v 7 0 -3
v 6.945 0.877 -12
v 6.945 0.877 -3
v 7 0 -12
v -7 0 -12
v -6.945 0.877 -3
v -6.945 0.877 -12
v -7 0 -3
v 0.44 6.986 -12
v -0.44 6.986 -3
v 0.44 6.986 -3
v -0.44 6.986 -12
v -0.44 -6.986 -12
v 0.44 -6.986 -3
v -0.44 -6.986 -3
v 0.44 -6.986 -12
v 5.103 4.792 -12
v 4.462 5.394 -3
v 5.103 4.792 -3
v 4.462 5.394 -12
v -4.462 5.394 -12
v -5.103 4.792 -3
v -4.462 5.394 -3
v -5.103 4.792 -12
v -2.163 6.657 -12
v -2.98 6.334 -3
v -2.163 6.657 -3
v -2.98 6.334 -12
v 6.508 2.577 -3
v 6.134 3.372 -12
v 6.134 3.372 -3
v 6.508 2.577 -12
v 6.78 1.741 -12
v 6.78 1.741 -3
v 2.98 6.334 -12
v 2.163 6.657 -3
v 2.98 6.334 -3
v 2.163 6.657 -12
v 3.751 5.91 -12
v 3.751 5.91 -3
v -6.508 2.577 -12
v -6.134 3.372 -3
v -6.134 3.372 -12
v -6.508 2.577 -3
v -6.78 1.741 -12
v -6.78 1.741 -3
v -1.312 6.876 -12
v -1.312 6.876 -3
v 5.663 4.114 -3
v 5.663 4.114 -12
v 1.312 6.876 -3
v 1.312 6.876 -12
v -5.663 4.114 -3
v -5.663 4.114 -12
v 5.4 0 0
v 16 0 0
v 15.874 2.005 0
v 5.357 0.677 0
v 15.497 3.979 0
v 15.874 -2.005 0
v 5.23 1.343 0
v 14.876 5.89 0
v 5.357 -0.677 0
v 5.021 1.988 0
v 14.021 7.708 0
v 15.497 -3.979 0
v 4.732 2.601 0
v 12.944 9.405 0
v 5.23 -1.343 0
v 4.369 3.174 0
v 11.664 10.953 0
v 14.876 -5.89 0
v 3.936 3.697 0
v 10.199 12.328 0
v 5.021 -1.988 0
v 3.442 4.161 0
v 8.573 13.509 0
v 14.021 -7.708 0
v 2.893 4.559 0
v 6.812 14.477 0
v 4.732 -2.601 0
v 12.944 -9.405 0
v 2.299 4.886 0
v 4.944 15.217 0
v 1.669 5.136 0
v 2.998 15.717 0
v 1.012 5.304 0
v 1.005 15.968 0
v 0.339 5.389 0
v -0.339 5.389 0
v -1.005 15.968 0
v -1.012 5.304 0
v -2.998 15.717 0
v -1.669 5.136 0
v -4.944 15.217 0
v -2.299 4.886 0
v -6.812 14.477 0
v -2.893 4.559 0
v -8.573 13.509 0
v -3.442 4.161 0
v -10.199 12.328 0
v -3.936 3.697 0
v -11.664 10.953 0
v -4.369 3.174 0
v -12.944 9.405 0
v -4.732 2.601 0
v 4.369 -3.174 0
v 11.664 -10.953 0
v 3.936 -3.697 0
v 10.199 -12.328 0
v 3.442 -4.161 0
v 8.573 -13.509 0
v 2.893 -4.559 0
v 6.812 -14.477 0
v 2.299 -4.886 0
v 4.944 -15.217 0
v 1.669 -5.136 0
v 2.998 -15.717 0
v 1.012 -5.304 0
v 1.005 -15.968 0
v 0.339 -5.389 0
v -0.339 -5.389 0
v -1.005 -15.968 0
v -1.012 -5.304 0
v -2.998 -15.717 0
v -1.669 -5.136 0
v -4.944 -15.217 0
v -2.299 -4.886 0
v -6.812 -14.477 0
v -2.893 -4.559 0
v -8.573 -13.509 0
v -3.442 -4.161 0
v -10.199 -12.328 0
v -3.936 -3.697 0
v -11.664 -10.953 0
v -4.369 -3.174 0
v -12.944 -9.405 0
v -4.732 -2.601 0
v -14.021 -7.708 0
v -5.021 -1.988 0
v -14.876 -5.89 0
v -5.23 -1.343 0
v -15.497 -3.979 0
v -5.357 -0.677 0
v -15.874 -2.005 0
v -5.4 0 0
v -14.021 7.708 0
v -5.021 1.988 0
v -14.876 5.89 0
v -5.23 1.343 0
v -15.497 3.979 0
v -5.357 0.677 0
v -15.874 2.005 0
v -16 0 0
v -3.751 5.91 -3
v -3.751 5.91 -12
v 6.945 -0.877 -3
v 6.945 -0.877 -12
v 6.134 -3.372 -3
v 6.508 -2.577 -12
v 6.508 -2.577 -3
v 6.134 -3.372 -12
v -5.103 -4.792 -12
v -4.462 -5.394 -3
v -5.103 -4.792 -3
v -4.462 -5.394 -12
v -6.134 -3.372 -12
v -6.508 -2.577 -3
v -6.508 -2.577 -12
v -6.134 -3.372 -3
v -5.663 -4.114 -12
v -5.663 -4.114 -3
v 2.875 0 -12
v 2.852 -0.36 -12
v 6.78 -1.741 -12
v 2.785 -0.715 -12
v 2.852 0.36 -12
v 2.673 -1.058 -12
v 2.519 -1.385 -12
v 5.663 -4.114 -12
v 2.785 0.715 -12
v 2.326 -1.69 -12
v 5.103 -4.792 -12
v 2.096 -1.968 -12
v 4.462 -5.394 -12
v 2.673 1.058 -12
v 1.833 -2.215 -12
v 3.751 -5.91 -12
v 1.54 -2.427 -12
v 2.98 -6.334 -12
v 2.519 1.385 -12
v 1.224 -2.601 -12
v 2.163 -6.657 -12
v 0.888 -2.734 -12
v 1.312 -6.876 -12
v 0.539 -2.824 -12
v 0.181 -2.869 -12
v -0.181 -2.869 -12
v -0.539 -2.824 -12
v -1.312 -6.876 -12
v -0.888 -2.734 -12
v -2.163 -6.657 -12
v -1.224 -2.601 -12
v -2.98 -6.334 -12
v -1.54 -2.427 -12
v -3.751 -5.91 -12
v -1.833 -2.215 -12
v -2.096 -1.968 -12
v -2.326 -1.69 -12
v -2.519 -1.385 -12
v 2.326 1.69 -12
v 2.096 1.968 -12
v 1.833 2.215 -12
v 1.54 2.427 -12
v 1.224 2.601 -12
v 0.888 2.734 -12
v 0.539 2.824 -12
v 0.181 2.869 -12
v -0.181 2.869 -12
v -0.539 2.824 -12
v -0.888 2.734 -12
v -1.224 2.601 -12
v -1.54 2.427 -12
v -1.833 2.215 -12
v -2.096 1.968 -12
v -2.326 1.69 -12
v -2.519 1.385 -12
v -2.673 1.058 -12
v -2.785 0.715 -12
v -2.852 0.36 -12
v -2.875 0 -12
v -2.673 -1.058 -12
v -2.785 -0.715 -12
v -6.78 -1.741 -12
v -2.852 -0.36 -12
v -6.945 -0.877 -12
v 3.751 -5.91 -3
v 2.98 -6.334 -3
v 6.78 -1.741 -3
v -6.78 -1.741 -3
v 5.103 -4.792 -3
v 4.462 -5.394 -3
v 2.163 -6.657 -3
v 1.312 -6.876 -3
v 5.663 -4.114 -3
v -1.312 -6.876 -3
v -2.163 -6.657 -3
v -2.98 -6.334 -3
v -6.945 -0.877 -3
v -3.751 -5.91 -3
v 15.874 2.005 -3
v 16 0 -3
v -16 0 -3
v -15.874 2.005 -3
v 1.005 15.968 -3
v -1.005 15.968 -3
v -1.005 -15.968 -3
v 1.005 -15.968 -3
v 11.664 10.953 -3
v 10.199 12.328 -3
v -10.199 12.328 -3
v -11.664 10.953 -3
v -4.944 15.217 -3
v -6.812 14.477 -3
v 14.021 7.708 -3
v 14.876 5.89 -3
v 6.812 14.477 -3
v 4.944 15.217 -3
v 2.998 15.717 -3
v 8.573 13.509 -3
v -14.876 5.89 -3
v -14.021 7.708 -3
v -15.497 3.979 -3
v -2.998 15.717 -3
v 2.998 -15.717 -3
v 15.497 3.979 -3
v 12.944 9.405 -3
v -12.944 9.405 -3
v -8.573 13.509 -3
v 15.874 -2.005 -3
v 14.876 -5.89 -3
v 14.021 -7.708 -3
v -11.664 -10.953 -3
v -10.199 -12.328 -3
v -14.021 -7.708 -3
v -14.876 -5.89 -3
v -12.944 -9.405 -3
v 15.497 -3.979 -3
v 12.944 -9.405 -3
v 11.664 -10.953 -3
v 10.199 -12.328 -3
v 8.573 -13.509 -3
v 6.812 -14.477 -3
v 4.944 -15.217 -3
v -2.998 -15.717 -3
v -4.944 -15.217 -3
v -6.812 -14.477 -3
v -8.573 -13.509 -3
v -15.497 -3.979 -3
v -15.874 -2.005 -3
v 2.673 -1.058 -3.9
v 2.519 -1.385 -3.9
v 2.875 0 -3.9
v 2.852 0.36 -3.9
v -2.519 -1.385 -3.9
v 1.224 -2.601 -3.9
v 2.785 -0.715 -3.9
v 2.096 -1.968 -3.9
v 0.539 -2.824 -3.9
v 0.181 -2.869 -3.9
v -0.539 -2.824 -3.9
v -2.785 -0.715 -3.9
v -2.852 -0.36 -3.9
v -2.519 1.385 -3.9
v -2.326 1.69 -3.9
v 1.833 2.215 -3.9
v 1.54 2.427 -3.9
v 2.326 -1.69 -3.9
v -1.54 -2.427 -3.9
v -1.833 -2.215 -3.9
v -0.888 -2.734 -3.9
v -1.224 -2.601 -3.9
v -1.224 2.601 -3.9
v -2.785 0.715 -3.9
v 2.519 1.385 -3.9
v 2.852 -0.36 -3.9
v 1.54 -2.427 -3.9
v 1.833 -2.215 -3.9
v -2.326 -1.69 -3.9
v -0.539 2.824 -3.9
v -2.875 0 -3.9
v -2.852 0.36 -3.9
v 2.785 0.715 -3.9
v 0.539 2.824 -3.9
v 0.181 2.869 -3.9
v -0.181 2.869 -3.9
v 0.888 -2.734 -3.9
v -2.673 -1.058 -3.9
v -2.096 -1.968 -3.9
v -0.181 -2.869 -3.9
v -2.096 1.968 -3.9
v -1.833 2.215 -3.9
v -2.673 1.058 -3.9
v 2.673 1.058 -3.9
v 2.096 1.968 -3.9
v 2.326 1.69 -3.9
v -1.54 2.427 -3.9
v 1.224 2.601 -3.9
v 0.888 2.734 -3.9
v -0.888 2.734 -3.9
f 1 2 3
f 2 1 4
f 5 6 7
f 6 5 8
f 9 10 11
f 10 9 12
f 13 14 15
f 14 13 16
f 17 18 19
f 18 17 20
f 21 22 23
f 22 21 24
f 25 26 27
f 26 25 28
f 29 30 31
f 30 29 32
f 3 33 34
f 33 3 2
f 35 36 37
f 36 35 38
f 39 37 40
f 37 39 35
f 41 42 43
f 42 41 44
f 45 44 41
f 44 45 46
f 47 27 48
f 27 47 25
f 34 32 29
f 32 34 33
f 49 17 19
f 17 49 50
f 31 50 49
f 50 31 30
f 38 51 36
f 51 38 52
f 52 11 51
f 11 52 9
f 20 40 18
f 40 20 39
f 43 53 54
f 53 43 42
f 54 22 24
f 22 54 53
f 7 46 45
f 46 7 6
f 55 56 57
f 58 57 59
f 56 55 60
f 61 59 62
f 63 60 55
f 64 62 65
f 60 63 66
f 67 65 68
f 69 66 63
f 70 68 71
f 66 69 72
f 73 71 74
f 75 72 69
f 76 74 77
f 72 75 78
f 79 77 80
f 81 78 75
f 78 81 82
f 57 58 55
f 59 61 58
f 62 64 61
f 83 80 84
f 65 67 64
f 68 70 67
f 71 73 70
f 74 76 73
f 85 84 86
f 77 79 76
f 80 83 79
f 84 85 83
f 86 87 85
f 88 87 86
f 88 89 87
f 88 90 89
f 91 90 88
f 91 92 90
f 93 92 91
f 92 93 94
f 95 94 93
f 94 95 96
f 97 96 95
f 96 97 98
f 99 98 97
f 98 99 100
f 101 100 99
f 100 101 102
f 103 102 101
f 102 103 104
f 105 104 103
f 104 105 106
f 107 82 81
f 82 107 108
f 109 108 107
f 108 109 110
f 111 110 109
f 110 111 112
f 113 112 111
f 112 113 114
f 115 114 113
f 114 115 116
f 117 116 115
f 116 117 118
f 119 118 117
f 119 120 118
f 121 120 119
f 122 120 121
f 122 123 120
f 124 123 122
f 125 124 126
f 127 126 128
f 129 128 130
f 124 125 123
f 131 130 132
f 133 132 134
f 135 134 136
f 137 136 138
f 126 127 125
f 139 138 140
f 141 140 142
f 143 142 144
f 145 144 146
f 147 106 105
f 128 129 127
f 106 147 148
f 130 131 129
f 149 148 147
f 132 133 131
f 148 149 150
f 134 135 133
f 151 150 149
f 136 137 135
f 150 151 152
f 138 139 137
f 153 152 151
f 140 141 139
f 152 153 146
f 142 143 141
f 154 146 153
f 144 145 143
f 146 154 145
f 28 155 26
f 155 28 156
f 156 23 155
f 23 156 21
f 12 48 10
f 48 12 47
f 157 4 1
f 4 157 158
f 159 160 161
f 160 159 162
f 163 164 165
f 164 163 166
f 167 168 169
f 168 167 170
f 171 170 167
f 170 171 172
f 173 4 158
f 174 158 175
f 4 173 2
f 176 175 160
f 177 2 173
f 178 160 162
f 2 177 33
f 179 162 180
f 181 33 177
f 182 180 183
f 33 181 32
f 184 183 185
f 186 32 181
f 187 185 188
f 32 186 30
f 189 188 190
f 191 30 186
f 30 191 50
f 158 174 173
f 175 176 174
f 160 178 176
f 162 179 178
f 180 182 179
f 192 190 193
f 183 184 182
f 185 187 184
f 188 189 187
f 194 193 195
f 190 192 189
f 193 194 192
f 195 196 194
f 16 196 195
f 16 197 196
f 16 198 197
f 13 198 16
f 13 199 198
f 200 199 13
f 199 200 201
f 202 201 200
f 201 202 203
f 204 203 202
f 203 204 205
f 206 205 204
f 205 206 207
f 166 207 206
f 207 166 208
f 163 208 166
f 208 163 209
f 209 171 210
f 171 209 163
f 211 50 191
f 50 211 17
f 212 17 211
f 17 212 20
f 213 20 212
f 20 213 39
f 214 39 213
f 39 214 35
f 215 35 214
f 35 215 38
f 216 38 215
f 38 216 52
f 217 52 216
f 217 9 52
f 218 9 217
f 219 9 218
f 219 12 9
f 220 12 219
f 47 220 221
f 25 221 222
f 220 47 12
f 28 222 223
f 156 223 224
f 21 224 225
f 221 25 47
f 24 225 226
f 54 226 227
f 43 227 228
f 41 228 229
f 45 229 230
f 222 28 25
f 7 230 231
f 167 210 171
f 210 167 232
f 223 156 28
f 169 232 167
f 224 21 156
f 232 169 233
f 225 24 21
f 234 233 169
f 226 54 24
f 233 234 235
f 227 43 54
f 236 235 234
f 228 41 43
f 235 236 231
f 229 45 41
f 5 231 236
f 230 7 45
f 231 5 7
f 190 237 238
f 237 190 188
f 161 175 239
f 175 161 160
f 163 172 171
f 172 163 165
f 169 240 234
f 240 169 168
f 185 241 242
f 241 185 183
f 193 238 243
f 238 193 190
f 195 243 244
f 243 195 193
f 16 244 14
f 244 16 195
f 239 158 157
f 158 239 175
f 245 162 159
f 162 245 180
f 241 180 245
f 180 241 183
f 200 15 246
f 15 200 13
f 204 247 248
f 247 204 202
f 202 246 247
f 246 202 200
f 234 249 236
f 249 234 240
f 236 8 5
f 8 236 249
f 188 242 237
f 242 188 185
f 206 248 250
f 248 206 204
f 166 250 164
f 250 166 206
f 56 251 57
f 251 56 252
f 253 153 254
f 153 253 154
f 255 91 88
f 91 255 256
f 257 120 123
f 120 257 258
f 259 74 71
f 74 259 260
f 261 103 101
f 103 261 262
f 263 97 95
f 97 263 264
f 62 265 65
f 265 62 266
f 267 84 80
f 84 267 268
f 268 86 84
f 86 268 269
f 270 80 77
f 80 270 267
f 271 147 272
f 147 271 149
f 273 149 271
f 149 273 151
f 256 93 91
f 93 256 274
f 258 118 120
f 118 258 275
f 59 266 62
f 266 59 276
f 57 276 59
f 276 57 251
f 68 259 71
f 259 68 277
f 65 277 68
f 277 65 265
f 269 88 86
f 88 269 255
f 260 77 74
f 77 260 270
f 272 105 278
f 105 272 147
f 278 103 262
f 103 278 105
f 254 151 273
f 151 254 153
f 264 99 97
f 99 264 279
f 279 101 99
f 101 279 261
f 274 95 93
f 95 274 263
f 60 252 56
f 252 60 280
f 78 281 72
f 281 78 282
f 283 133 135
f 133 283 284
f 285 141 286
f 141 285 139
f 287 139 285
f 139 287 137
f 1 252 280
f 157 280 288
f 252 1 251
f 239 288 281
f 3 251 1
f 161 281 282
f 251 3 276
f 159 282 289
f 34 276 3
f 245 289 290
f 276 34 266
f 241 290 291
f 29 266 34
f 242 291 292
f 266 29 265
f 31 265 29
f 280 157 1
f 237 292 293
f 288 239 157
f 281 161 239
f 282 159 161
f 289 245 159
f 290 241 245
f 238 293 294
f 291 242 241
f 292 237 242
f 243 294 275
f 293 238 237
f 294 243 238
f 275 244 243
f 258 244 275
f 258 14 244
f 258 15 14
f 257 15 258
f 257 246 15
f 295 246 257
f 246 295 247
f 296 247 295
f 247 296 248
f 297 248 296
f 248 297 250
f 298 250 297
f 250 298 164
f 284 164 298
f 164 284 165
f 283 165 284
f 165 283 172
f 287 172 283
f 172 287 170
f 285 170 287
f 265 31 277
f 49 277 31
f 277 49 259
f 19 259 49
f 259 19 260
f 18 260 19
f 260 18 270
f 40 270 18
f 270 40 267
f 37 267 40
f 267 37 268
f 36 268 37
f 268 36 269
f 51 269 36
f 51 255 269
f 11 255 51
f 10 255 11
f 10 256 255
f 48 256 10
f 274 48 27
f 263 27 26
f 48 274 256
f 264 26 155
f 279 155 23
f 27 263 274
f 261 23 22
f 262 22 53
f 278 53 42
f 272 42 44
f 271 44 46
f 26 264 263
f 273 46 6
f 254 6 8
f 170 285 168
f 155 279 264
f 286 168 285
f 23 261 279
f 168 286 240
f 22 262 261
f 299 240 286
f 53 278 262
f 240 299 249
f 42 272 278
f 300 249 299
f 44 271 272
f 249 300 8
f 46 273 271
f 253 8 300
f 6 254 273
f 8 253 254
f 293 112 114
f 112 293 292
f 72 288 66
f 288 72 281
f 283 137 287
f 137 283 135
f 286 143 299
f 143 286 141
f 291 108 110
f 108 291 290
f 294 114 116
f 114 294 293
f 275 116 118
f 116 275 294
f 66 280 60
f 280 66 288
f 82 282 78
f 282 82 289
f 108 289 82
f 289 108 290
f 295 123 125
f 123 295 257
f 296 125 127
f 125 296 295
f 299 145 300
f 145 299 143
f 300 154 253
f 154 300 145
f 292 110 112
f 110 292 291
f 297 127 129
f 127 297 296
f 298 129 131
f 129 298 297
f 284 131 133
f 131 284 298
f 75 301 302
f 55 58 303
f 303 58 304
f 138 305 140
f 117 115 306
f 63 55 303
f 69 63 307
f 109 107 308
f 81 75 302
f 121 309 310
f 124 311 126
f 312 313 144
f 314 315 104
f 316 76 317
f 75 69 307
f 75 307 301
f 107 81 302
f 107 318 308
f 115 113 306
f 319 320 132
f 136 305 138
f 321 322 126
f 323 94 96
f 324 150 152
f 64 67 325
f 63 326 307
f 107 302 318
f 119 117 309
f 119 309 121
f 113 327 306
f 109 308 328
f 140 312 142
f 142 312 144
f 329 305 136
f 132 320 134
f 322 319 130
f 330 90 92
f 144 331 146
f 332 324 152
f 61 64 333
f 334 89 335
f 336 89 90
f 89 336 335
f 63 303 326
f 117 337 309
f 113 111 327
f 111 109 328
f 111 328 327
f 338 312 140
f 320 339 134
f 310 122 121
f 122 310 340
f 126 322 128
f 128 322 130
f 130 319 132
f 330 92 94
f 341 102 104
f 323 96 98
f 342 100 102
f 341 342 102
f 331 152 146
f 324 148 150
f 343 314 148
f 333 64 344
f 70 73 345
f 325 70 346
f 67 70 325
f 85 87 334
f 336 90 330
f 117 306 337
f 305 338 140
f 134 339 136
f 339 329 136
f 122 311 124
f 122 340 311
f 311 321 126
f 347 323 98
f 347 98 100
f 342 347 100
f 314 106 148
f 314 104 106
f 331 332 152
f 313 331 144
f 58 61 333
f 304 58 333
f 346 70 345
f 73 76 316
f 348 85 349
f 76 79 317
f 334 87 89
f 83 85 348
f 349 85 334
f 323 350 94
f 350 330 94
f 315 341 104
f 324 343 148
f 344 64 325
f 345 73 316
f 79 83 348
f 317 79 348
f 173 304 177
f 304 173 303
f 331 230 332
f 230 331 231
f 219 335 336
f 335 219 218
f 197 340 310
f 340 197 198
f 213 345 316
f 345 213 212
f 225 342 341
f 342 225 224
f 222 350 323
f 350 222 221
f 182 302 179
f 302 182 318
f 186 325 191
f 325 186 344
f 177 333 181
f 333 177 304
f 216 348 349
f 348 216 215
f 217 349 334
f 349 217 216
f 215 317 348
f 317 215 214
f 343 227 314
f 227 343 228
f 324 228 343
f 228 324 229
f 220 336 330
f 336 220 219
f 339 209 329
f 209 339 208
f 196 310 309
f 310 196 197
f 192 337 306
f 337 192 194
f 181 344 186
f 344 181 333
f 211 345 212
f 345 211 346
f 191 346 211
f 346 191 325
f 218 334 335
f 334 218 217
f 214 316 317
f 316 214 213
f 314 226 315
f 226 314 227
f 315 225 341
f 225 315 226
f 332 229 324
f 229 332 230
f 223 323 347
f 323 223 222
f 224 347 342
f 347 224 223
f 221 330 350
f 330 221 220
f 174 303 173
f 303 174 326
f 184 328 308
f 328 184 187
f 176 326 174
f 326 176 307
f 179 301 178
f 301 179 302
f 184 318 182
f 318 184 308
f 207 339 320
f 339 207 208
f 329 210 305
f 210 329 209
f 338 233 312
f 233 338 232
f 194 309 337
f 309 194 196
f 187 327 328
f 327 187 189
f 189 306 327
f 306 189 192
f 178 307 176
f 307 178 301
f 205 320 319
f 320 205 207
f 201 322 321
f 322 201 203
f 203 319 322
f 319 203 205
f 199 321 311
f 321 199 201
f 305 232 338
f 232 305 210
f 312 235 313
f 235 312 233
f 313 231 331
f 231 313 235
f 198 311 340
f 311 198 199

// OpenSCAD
$fn = 50;


difference() {
	union() {
		translate(v = [0, 0, -12.0000000000]) {
			cylinder(h = 12, r = 7.0000000000);
		}
		translate(v = [0, 0, -3.0000000000]) {
			cylinder(h = 3, r = 16.0000000000);
		}
	}
	union() {
		translate(v = [0, 0, 0]) {
			rotate(a = [0, 0, 0]) {
				difference() {
					union() {
						#translate(v = [0, 0, -12.0000000000]) {
							cylinder(h = 12, r = 2.6000000000);
						}
						#translate(v = [0, 0, -3.9000000000]) {
							cylinder(h = 3.9000000000, r1 = 2.8750000000, r2 = 5.4000000000);
						}
						#translate(v = [0, 0, -12.0000000000]) {
							cylinder(h = 12, r = 2.8750000000);
						}
						#translate(v = [0, 0, -12.0000000000]) {
							cylinder(h = 12, r = 2.6000000000);
						}
					}
					union();
				}
			}
		}
	}
}
